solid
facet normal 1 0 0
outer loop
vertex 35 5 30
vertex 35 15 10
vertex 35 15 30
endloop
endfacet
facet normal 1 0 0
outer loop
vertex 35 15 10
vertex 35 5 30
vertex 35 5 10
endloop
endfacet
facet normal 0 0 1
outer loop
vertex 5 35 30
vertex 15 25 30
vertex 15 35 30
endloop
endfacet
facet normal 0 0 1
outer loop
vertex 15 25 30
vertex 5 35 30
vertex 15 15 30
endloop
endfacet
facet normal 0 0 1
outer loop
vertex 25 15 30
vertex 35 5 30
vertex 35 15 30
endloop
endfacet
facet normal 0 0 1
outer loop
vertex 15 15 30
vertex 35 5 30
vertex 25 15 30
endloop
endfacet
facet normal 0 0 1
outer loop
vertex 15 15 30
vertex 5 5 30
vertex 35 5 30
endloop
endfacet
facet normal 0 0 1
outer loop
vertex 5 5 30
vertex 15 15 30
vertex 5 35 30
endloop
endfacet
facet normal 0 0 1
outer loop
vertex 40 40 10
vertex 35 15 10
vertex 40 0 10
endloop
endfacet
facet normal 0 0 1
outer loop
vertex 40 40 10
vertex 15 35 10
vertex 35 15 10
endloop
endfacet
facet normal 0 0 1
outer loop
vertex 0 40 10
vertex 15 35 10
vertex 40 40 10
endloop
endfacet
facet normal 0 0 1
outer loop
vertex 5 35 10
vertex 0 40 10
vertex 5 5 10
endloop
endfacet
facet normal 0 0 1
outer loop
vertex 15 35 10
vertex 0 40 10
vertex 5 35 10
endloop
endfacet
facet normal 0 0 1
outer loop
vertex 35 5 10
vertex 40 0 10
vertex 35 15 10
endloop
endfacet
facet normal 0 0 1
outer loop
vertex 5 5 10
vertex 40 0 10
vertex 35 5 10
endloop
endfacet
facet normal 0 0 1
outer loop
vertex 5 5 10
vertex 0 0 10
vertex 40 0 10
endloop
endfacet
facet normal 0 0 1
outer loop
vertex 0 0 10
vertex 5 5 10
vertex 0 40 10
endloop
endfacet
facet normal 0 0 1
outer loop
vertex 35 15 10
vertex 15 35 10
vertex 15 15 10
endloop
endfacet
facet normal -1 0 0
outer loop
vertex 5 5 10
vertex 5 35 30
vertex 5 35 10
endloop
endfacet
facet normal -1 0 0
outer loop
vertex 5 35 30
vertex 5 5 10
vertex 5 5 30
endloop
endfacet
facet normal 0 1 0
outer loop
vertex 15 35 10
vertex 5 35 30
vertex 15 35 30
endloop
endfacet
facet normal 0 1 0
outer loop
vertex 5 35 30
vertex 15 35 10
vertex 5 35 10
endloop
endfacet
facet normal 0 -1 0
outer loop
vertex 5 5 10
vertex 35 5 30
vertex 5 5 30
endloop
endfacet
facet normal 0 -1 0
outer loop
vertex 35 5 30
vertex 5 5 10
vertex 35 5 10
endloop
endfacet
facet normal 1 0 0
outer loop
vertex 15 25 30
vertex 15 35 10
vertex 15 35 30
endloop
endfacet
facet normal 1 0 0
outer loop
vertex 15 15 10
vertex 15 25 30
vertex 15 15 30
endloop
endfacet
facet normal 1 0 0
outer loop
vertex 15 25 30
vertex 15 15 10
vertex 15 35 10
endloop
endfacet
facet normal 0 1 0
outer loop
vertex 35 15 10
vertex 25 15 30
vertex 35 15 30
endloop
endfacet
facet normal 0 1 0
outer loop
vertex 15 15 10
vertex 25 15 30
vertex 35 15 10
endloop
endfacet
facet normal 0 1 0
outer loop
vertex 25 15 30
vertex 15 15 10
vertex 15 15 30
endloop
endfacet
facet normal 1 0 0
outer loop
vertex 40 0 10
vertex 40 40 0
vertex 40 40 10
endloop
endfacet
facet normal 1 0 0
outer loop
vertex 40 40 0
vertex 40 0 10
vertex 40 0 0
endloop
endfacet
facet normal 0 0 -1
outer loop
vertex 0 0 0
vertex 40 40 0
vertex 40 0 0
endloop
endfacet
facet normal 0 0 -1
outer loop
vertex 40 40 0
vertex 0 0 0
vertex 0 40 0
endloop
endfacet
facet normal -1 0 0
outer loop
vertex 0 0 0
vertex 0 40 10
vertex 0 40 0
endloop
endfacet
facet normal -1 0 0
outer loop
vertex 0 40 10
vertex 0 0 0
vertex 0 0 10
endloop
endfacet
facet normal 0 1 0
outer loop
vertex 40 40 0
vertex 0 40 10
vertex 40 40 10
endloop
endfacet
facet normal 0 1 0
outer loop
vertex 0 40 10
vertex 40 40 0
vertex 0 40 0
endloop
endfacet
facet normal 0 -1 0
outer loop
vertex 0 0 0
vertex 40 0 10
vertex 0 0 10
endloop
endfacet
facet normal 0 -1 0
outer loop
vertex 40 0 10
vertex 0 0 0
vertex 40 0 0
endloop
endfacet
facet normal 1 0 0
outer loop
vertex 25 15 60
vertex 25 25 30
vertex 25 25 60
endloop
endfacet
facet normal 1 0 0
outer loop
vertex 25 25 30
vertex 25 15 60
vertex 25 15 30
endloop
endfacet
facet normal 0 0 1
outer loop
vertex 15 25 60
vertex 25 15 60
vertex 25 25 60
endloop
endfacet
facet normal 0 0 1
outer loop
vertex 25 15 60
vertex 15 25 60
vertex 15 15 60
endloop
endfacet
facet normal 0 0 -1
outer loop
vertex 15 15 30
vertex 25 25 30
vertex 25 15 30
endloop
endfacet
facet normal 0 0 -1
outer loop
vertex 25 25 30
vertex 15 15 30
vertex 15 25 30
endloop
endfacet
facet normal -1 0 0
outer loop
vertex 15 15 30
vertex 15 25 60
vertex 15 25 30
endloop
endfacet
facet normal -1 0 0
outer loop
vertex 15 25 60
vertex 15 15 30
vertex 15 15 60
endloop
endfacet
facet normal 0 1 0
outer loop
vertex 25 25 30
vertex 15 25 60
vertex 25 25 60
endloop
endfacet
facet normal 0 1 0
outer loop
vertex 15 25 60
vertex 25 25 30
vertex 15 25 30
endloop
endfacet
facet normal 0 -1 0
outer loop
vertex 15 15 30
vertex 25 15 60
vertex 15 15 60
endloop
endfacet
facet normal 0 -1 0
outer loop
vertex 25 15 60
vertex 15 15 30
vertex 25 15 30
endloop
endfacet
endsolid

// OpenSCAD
// Base block dimensions
module base_block() {
    cube([40, 40, 10], center = false);
}

// L-shaped block dimensions
module l_shaped_block() {
    difference() {
        cube([30, 30, 20], center = false);
        translate([10, 10, 0]) cube([20, 20, 20], center = false);
    }
}

// Vertical block dimensions
module vertical_block() {
    cube([10, 10, 30], center = false);
}

// Assemble the model
module flexible_coupling() {
    // Layer 3: Base block
    base_block();

    // Layer 2: L-shaped block
    translate([5, 5, 10]) l_shaped_block();

    // Layer 1: Vertical block
    translate([15, 15, 30]) vertical_block();
}

// Render the model
flexible_coupling();
